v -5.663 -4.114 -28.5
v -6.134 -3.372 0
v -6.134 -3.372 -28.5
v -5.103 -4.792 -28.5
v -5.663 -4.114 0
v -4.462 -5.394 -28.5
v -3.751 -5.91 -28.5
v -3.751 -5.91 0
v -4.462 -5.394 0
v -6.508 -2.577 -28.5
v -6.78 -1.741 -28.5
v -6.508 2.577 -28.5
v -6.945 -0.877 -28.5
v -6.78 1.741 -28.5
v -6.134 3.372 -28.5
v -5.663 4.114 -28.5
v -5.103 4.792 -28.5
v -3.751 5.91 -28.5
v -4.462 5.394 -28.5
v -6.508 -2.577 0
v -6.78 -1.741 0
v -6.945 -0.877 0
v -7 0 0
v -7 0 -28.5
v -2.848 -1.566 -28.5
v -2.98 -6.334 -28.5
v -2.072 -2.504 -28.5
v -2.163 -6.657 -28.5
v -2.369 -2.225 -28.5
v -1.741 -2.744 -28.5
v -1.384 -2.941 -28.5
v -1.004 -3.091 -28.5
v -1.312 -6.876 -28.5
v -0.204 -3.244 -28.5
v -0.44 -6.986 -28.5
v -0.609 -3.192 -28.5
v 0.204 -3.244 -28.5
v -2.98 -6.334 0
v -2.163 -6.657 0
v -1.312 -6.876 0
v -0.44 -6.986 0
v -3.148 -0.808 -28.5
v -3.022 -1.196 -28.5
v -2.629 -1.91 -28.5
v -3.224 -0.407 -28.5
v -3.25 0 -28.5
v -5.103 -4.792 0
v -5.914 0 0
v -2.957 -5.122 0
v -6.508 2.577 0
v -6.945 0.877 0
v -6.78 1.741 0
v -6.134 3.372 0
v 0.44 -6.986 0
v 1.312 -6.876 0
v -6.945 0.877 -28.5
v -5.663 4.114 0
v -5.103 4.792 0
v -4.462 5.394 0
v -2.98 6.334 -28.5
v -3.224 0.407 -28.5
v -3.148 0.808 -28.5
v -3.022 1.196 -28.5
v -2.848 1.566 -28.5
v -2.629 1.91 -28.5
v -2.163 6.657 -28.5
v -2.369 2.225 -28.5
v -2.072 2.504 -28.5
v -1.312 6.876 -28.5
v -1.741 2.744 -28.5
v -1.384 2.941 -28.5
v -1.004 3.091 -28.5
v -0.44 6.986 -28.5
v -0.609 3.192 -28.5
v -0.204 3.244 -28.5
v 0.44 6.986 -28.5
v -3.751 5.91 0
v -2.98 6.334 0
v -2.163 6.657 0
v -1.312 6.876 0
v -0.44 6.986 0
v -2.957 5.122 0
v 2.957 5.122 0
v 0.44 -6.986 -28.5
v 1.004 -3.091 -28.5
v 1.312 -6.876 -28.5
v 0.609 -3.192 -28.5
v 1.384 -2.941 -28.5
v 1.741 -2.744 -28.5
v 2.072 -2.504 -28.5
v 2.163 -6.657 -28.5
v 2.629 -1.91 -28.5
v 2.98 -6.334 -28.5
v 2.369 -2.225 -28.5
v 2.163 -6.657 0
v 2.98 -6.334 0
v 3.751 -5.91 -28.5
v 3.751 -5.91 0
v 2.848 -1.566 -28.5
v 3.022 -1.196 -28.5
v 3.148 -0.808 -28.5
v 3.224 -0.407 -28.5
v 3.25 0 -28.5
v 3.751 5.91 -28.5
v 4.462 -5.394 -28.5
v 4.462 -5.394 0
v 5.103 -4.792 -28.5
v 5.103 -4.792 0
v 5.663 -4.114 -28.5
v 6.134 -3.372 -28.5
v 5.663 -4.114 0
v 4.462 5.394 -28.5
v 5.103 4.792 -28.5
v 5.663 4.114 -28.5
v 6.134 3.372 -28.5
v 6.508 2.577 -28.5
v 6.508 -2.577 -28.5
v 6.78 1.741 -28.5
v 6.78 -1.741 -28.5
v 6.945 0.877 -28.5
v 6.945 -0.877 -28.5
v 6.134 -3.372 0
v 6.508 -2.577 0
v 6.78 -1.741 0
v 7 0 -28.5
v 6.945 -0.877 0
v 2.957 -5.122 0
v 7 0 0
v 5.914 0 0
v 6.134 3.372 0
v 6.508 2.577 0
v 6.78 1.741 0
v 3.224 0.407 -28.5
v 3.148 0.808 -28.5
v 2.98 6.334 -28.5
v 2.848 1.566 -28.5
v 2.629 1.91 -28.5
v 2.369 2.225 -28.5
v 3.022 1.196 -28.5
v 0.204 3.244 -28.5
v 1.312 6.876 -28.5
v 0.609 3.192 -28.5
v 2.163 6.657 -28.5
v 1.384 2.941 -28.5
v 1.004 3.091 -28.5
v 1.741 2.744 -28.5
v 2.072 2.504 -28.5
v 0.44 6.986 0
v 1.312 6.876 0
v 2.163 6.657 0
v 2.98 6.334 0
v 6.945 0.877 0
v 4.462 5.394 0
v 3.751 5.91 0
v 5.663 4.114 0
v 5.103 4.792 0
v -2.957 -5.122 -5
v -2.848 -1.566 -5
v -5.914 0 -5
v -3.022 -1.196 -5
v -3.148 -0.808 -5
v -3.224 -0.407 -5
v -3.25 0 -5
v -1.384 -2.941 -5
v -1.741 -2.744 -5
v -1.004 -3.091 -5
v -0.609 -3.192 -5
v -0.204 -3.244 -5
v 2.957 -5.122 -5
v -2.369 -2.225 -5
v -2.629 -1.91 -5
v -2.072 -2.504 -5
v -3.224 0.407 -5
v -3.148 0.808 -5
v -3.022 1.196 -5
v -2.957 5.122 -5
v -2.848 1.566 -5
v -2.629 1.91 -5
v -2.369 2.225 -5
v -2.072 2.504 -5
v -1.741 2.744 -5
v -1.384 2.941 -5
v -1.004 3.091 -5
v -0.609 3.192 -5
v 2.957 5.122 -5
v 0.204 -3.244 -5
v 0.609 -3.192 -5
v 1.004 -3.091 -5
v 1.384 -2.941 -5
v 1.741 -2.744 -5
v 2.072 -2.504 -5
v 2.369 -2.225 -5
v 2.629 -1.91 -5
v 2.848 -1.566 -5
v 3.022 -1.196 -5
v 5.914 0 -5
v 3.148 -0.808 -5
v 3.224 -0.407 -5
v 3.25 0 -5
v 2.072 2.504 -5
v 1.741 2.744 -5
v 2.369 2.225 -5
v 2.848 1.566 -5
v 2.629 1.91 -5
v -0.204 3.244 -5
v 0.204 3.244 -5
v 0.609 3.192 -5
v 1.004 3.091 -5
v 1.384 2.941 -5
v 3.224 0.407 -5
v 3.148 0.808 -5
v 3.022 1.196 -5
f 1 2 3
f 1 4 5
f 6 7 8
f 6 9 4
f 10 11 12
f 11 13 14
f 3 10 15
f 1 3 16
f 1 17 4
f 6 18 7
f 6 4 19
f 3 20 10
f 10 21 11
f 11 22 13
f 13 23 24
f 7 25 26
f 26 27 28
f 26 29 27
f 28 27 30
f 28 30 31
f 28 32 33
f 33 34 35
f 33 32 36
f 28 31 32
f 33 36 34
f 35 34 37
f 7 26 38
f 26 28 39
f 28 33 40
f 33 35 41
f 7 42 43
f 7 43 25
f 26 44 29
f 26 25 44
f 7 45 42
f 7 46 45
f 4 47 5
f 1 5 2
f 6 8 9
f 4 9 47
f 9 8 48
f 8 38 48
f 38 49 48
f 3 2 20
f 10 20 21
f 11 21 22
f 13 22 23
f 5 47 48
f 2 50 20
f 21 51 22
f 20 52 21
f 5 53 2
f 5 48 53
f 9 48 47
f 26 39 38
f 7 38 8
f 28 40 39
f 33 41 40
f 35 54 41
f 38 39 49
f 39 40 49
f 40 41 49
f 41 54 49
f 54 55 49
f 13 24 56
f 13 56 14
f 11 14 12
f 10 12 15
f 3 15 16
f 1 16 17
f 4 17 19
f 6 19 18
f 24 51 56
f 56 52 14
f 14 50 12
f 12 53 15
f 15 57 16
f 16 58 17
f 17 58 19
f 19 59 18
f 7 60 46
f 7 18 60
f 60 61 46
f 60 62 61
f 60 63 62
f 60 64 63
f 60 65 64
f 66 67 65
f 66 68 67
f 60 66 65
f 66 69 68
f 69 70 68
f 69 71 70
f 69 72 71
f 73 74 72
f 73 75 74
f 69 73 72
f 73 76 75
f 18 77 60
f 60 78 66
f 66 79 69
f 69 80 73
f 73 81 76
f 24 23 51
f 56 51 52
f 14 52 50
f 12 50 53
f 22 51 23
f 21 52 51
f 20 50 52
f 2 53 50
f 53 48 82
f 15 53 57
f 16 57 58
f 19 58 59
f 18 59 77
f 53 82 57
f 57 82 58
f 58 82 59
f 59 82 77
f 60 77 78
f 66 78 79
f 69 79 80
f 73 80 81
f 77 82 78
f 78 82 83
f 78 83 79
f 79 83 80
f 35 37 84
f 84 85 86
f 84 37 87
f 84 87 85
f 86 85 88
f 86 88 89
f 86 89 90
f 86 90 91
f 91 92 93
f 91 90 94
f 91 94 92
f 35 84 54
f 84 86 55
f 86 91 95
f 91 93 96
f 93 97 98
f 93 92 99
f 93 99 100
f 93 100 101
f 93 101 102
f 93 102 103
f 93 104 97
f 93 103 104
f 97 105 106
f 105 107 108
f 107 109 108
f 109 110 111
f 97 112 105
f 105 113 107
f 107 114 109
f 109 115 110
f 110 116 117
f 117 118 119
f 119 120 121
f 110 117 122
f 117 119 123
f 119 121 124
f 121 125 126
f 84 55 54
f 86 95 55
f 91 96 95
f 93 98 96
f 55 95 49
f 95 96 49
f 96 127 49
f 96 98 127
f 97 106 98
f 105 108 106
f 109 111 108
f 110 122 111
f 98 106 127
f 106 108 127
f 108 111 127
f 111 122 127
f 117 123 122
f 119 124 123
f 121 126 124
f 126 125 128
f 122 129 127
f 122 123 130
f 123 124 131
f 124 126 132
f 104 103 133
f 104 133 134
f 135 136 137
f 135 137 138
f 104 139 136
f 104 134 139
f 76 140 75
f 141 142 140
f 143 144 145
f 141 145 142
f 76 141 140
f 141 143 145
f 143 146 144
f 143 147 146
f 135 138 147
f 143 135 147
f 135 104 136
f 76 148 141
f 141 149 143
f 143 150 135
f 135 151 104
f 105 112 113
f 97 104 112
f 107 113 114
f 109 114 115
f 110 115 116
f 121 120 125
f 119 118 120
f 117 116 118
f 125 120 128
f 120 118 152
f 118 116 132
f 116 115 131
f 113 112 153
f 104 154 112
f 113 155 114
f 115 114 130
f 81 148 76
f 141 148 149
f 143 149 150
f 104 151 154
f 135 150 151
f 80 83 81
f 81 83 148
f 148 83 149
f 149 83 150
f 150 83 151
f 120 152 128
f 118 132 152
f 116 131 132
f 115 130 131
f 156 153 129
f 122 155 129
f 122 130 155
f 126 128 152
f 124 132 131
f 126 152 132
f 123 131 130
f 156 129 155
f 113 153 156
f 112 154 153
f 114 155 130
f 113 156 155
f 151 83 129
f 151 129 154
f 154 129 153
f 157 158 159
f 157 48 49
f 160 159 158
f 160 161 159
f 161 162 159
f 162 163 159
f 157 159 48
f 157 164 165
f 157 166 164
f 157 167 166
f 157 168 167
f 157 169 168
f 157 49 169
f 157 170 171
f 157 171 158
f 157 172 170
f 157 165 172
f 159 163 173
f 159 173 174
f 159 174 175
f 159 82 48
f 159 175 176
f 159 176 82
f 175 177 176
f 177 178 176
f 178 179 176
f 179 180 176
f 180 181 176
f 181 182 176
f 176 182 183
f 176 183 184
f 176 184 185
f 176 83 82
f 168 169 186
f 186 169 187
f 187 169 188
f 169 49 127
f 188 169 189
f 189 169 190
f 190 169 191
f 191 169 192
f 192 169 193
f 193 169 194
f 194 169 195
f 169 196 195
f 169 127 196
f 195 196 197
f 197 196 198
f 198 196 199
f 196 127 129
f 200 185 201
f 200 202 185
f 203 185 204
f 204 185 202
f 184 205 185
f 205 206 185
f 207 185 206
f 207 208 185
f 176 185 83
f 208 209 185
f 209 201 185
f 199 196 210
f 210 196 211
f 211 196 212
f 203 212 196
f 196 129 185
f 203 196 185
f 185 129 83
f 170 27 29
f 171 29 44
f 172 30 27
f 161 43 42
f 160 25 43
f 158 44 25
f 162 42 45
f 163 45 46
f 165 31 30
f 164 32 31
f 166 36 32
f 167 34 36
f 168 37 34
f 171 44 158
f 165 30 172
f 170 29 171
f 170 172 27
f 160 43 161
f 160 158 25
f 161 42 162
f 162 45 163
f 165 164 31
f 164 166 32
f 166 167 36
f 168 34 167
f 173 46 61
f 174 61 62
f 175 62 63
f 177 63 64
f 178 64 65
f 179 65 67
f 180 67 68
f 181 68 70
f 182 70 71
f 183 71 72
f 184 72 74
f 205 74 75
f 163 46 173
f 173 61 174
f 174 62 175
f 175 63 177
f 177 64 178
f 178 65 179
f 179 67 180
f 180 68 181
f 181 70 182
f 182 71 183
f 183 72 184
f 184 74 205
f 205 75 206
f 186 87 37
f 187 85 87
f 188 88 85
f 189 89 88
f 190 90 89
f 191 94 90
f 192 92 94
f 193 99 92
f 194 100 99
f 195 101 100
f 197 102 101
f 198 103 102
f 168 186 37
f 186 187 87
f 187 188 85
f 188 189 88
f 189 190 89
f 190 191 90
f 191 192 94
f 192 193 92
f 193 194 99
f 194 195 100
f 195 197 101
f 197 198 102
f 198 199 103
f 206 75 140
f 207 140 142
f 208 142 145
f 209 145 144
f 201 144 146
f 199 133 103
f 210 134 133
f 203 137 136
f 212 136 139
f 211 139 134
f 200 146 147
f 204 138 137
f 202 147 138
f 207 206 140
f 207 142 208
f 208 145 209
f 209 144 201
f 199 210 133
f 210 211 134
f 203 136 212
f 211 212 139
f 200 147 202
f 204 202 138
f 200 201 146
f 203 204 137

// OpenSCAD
$fn = 50;


difference() {
	union() {
		translate(v = [0, 0, -28.5000000000]) {
			cylinder(h = 28.5000000000, r = 7.0000000000);
		}
		#translate(v = [0, 0, -30.0000000000]) {
			cylinder(h = 30, r = 2.8750000000);
		}
	}
	union() {
		translate(v = [0, 0, 0]) {
			rotate(a = [0, 0, 0]) {
				difference() {
					union() {
						translate(v = [0, 0, -5]) {
							linear_extrude(height = 5) {
								polygon(points = [[5.9142500000, 0.0000000000], [2.9571250000, 5.1218907443], [-2.9571250000, 5.1218907443], [-5.9142500000, 0.0000000000], [-2.9571250000, -5.1218907443], [2.9571250000, -5.1218907443]]);
							}
						}
					}
					union();
				}
			}
		}
		#translate(v = [0, 0, -100.0000000000]) {
			cylinder(h = 200, r = 3.2500000000);
		}
	}
}
